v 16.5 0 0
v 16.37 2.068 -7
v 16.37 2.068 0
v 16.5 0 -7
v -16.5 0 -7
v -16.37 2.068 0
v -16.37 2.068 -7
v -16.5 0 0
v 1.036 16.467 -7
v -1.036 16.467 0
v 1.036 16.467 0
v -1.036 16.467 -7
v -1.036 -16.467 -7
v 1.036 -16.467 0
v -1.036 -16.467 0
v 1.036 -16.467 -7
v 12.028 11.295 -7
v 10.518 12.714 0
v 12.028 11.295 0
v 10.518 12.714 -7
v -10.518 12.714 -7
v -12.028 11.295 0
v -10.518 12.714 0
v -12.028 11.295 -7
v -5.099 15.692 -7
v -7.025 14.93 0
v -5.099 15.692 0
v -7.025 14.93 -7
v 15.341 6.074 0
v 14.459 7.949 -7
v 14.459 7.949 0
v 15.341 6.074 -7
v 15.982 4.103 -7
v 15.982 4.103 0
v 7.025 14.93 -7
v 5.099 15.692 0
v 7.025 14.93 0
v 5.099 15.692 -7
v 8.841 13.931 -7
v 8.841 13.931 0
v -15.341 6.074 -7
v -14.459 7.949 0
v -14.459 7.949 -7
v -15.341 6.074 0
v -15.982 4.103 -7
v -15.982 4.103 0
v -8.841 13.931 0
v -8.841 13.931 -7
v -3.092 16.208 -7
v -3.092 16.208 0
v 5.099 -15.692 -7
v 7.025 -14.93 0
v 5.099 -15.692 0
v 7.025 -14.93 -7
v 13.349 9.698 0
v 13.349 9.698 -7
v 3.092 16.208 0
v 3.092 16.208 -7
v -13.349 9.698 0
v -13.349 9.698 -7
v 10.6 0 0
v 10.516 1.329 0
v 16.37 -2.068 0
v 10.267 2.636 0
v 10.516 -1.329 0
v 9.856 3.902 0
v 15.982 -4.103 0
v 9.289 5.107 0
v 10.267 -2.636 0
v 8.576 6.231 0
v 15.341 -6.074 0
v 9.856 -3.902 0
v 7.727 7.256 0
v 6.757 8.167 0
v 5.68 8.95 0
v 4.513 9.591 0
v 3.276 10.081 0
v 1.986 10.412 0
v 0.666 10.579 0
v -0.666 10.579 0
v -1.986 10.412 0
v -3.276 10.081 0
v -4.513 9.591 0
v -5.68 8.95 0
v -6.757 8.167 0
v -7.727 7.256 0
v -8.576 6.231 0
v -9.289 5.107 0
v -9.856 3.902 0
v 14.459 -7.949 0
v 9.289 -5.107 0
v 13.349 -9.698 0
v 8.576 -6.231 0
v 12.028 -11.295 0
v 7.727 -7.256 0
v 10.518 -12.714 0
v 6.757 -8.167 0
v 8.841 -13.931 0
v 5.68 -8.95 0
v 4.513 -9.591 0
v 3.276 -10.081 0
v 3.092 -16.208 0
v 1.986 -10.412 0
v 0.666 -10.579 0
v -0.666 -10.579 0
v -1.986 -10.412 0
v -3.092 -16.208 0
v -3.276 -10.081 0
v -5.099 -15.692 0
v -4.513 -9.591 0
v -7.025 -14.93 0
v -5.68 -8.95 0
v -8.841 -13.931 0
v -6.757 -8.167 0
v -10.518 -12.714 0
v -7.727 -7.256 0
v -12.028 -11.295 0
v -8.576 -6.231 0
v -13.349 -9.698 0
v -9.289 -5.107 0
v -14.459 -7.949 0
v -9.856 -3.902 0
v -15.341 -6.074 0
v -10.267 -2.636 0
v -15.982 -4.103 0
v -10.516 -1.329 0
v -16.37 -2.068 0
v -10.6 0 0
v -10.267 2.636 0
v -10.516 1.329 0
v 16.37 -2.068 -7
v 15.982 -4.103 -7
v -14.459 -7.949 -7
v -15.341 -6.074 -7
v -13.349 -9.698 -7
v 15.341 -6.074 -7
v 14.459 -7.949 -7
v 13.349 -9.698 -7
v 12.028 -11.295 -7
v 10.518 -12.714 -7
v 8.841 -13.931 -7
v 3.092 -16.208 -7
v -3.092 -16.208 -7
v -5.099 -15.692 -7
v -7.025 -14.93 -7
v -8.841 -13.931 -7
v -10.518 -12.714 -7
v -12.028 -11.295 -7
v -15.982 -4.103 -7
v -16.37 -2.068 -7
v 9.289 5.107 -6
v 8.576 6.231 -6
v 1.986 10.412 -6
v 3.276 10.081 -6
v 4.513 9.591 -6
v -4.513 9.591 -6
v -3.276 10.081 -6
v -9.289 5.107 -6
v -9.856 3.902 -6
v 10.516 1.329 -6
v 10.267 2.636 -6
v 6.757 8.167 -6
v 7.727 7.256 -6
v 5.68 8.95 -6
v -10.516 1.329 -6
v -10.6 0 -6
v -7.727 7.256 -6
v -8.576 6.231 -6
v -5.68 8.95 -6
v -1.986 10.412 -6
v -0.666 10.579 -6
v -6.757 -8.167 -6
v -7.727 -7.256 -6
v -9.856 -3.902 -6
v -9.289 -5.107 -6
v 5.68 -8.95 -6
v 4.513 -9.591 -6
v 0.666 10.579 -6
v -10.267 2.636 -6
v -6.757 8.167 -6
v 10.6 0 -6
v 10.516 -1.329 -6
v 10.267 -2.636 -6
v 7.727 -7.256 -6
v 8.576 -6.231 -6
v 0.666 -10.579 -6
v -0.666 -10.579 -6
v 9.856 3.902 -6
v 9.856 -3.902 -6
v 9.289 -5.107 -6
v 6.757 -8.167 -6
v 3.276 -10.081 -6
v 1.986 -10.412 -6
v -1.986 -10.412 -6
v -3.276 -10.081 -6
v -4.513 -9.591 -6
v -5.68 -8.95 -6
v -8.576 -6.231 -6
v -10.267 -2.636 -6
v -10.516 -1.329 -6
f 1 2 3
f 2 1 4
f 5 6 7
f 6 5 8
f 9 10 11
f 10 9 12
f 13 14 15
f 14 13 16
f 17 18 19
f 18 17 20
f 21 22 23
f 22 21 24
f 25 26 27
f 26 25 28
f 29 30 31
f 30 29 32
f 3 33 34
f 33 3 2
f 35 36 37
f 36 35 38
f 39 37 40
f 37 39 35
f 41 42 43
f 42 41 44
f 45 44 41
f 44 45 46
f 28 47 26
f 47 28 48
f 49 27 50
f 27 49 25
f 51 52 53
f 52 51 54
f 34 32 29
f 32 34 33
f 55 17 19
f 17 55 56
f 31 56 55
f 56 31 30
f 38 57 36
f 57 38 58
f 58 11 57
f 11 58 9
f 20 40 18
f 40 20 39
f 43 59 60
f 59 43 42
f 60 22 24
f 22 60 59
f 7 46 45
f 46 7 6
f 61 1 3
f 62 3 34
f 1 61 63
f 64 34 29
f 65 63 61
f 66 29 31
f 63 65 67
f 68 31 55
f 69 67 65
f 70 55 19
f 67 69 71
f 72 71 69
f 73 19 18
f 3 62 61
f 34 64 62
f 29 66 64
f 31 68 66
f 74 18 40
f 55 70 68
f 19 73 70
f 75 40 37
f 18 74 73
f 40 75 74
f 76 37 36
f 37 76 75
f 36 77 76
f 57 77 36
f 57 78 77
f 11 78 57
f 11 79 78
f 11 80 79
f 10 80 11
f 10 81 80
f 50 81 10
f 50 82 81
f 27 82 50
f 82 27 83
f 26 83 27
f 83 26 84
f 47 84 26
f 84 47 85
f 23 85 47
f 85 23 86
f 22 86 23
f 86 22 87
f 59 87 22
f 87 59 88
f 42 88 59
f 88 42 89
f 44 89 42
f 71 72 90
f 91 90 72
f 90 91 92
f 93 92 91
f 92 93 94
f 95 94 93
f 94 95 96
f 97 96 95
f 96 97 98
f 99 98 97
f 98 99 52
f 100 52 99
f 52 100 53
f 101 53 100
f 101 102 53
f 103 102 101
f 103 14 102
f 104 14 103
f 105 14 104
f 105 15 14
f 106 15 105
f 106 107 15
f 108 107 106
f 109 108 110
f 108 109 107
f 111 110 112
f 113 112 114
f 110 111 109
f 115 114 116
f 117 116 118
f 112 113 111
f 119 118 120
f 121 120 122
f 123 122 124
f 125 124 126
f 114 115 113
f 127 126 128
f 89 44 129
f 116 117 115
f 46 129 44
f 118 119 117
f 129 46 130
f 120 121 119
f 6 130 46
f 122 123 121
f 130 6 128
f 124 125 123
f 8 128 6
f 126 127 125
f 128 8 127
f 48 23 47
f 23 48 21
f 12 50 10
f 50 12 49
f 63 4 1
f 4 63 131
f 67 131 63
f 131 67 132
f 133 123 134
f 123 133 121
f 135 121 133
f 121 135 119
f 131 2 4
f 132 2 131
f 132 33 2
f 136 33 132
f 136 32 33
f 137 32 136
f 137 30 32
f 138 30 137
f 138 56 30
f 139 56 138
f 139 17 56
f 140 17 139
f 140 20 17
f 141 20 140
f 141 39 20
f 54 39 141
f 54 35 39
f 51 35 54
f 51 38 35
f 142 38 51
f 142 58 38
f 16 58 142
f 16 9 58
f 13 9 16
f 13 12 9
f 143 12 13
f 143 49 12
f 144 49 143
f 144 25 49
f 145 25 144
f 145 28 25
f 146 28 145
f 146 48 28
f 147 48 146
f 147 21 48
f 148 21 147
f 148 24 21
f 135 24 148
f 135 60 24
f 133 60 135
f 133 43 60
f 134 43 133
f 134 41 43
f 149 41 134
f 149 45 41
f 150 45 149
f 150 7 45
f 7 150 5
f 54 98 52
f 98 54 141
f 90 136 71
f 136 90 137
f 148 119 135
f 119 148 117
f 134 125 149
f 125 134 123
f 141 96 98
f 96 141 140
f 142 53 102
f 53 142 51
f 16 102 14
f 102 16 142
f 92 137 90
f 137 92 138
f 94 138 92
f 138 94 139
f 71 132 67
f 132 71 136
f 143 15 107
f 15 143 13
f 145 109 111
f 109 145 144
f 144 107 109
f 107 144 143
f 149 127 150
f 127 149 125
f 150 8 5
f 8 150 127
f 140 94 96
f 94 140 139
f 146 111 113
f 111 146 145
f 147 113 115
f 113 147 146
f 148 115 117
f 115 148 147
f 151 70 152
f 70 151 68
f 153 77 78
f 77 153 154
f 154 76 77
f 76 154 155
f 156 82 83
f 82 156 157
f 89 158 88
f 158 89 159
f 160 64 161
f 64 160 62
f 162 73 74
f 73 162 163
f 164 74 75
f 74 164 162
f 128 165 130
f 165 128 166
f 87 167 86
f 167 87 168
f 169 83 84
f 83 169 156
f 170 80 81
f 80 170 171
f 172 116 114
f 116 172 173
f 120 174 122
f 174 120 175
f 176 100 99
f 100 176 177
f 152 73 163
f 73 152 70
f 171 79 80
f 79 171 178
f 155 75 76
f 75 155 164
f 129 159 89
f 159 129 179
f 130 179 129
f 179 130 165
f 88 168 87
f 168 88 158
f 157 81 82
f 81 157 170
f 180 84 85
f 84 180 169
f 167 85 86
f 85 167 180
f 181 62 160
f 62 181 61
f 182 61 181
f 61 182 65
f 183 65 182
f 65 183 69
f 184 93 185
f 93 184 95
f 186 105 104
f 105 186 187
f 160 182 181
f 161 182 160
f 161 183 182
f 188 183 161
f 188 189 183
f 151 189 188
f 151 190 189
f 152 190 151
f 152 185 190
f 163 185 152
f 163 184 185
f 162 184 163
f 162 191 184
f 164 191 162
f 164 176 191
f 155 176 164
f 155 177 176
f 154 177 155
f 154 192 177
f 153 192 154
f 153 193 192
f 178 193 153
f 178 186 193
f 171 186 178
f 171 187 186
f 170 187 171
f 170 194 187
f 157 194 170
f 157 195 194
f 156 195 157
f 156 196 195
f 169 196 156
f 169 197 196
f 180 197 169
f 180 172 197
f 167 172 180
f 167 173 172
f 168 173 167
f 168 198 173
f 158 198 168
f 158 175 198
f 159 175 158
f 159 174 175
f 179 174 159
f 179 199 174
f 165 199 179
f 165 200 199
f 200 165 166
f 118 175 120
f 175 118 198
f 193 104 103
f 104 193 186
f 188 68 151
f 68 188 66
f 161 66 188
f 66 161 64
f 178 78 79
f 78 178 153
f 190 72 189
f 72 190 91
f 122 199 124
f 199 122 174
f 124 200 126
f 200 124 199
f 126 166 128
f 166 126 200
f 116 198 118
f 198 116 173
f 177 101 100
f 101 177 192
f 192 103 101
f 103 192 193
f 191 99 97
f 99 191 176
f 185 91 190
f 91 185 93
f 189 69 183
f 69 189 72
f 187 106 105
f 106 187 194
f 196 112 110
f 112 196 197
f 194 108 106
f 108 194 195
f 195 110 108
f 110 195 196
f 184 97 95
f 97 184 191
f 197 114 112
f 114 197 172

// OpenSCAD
$fn = 50;


difference() {
	union() {
		translate(v = [0, 0, -7.0000000000]) {
			cylinder(h = 7, r = 16.5000000000);
		}
	}
	union() {
		#translate(v = [0, 0, -6.0000000000]) {
			cylinder(h = 6, r = 10.6000000000);
		}
	}
}
